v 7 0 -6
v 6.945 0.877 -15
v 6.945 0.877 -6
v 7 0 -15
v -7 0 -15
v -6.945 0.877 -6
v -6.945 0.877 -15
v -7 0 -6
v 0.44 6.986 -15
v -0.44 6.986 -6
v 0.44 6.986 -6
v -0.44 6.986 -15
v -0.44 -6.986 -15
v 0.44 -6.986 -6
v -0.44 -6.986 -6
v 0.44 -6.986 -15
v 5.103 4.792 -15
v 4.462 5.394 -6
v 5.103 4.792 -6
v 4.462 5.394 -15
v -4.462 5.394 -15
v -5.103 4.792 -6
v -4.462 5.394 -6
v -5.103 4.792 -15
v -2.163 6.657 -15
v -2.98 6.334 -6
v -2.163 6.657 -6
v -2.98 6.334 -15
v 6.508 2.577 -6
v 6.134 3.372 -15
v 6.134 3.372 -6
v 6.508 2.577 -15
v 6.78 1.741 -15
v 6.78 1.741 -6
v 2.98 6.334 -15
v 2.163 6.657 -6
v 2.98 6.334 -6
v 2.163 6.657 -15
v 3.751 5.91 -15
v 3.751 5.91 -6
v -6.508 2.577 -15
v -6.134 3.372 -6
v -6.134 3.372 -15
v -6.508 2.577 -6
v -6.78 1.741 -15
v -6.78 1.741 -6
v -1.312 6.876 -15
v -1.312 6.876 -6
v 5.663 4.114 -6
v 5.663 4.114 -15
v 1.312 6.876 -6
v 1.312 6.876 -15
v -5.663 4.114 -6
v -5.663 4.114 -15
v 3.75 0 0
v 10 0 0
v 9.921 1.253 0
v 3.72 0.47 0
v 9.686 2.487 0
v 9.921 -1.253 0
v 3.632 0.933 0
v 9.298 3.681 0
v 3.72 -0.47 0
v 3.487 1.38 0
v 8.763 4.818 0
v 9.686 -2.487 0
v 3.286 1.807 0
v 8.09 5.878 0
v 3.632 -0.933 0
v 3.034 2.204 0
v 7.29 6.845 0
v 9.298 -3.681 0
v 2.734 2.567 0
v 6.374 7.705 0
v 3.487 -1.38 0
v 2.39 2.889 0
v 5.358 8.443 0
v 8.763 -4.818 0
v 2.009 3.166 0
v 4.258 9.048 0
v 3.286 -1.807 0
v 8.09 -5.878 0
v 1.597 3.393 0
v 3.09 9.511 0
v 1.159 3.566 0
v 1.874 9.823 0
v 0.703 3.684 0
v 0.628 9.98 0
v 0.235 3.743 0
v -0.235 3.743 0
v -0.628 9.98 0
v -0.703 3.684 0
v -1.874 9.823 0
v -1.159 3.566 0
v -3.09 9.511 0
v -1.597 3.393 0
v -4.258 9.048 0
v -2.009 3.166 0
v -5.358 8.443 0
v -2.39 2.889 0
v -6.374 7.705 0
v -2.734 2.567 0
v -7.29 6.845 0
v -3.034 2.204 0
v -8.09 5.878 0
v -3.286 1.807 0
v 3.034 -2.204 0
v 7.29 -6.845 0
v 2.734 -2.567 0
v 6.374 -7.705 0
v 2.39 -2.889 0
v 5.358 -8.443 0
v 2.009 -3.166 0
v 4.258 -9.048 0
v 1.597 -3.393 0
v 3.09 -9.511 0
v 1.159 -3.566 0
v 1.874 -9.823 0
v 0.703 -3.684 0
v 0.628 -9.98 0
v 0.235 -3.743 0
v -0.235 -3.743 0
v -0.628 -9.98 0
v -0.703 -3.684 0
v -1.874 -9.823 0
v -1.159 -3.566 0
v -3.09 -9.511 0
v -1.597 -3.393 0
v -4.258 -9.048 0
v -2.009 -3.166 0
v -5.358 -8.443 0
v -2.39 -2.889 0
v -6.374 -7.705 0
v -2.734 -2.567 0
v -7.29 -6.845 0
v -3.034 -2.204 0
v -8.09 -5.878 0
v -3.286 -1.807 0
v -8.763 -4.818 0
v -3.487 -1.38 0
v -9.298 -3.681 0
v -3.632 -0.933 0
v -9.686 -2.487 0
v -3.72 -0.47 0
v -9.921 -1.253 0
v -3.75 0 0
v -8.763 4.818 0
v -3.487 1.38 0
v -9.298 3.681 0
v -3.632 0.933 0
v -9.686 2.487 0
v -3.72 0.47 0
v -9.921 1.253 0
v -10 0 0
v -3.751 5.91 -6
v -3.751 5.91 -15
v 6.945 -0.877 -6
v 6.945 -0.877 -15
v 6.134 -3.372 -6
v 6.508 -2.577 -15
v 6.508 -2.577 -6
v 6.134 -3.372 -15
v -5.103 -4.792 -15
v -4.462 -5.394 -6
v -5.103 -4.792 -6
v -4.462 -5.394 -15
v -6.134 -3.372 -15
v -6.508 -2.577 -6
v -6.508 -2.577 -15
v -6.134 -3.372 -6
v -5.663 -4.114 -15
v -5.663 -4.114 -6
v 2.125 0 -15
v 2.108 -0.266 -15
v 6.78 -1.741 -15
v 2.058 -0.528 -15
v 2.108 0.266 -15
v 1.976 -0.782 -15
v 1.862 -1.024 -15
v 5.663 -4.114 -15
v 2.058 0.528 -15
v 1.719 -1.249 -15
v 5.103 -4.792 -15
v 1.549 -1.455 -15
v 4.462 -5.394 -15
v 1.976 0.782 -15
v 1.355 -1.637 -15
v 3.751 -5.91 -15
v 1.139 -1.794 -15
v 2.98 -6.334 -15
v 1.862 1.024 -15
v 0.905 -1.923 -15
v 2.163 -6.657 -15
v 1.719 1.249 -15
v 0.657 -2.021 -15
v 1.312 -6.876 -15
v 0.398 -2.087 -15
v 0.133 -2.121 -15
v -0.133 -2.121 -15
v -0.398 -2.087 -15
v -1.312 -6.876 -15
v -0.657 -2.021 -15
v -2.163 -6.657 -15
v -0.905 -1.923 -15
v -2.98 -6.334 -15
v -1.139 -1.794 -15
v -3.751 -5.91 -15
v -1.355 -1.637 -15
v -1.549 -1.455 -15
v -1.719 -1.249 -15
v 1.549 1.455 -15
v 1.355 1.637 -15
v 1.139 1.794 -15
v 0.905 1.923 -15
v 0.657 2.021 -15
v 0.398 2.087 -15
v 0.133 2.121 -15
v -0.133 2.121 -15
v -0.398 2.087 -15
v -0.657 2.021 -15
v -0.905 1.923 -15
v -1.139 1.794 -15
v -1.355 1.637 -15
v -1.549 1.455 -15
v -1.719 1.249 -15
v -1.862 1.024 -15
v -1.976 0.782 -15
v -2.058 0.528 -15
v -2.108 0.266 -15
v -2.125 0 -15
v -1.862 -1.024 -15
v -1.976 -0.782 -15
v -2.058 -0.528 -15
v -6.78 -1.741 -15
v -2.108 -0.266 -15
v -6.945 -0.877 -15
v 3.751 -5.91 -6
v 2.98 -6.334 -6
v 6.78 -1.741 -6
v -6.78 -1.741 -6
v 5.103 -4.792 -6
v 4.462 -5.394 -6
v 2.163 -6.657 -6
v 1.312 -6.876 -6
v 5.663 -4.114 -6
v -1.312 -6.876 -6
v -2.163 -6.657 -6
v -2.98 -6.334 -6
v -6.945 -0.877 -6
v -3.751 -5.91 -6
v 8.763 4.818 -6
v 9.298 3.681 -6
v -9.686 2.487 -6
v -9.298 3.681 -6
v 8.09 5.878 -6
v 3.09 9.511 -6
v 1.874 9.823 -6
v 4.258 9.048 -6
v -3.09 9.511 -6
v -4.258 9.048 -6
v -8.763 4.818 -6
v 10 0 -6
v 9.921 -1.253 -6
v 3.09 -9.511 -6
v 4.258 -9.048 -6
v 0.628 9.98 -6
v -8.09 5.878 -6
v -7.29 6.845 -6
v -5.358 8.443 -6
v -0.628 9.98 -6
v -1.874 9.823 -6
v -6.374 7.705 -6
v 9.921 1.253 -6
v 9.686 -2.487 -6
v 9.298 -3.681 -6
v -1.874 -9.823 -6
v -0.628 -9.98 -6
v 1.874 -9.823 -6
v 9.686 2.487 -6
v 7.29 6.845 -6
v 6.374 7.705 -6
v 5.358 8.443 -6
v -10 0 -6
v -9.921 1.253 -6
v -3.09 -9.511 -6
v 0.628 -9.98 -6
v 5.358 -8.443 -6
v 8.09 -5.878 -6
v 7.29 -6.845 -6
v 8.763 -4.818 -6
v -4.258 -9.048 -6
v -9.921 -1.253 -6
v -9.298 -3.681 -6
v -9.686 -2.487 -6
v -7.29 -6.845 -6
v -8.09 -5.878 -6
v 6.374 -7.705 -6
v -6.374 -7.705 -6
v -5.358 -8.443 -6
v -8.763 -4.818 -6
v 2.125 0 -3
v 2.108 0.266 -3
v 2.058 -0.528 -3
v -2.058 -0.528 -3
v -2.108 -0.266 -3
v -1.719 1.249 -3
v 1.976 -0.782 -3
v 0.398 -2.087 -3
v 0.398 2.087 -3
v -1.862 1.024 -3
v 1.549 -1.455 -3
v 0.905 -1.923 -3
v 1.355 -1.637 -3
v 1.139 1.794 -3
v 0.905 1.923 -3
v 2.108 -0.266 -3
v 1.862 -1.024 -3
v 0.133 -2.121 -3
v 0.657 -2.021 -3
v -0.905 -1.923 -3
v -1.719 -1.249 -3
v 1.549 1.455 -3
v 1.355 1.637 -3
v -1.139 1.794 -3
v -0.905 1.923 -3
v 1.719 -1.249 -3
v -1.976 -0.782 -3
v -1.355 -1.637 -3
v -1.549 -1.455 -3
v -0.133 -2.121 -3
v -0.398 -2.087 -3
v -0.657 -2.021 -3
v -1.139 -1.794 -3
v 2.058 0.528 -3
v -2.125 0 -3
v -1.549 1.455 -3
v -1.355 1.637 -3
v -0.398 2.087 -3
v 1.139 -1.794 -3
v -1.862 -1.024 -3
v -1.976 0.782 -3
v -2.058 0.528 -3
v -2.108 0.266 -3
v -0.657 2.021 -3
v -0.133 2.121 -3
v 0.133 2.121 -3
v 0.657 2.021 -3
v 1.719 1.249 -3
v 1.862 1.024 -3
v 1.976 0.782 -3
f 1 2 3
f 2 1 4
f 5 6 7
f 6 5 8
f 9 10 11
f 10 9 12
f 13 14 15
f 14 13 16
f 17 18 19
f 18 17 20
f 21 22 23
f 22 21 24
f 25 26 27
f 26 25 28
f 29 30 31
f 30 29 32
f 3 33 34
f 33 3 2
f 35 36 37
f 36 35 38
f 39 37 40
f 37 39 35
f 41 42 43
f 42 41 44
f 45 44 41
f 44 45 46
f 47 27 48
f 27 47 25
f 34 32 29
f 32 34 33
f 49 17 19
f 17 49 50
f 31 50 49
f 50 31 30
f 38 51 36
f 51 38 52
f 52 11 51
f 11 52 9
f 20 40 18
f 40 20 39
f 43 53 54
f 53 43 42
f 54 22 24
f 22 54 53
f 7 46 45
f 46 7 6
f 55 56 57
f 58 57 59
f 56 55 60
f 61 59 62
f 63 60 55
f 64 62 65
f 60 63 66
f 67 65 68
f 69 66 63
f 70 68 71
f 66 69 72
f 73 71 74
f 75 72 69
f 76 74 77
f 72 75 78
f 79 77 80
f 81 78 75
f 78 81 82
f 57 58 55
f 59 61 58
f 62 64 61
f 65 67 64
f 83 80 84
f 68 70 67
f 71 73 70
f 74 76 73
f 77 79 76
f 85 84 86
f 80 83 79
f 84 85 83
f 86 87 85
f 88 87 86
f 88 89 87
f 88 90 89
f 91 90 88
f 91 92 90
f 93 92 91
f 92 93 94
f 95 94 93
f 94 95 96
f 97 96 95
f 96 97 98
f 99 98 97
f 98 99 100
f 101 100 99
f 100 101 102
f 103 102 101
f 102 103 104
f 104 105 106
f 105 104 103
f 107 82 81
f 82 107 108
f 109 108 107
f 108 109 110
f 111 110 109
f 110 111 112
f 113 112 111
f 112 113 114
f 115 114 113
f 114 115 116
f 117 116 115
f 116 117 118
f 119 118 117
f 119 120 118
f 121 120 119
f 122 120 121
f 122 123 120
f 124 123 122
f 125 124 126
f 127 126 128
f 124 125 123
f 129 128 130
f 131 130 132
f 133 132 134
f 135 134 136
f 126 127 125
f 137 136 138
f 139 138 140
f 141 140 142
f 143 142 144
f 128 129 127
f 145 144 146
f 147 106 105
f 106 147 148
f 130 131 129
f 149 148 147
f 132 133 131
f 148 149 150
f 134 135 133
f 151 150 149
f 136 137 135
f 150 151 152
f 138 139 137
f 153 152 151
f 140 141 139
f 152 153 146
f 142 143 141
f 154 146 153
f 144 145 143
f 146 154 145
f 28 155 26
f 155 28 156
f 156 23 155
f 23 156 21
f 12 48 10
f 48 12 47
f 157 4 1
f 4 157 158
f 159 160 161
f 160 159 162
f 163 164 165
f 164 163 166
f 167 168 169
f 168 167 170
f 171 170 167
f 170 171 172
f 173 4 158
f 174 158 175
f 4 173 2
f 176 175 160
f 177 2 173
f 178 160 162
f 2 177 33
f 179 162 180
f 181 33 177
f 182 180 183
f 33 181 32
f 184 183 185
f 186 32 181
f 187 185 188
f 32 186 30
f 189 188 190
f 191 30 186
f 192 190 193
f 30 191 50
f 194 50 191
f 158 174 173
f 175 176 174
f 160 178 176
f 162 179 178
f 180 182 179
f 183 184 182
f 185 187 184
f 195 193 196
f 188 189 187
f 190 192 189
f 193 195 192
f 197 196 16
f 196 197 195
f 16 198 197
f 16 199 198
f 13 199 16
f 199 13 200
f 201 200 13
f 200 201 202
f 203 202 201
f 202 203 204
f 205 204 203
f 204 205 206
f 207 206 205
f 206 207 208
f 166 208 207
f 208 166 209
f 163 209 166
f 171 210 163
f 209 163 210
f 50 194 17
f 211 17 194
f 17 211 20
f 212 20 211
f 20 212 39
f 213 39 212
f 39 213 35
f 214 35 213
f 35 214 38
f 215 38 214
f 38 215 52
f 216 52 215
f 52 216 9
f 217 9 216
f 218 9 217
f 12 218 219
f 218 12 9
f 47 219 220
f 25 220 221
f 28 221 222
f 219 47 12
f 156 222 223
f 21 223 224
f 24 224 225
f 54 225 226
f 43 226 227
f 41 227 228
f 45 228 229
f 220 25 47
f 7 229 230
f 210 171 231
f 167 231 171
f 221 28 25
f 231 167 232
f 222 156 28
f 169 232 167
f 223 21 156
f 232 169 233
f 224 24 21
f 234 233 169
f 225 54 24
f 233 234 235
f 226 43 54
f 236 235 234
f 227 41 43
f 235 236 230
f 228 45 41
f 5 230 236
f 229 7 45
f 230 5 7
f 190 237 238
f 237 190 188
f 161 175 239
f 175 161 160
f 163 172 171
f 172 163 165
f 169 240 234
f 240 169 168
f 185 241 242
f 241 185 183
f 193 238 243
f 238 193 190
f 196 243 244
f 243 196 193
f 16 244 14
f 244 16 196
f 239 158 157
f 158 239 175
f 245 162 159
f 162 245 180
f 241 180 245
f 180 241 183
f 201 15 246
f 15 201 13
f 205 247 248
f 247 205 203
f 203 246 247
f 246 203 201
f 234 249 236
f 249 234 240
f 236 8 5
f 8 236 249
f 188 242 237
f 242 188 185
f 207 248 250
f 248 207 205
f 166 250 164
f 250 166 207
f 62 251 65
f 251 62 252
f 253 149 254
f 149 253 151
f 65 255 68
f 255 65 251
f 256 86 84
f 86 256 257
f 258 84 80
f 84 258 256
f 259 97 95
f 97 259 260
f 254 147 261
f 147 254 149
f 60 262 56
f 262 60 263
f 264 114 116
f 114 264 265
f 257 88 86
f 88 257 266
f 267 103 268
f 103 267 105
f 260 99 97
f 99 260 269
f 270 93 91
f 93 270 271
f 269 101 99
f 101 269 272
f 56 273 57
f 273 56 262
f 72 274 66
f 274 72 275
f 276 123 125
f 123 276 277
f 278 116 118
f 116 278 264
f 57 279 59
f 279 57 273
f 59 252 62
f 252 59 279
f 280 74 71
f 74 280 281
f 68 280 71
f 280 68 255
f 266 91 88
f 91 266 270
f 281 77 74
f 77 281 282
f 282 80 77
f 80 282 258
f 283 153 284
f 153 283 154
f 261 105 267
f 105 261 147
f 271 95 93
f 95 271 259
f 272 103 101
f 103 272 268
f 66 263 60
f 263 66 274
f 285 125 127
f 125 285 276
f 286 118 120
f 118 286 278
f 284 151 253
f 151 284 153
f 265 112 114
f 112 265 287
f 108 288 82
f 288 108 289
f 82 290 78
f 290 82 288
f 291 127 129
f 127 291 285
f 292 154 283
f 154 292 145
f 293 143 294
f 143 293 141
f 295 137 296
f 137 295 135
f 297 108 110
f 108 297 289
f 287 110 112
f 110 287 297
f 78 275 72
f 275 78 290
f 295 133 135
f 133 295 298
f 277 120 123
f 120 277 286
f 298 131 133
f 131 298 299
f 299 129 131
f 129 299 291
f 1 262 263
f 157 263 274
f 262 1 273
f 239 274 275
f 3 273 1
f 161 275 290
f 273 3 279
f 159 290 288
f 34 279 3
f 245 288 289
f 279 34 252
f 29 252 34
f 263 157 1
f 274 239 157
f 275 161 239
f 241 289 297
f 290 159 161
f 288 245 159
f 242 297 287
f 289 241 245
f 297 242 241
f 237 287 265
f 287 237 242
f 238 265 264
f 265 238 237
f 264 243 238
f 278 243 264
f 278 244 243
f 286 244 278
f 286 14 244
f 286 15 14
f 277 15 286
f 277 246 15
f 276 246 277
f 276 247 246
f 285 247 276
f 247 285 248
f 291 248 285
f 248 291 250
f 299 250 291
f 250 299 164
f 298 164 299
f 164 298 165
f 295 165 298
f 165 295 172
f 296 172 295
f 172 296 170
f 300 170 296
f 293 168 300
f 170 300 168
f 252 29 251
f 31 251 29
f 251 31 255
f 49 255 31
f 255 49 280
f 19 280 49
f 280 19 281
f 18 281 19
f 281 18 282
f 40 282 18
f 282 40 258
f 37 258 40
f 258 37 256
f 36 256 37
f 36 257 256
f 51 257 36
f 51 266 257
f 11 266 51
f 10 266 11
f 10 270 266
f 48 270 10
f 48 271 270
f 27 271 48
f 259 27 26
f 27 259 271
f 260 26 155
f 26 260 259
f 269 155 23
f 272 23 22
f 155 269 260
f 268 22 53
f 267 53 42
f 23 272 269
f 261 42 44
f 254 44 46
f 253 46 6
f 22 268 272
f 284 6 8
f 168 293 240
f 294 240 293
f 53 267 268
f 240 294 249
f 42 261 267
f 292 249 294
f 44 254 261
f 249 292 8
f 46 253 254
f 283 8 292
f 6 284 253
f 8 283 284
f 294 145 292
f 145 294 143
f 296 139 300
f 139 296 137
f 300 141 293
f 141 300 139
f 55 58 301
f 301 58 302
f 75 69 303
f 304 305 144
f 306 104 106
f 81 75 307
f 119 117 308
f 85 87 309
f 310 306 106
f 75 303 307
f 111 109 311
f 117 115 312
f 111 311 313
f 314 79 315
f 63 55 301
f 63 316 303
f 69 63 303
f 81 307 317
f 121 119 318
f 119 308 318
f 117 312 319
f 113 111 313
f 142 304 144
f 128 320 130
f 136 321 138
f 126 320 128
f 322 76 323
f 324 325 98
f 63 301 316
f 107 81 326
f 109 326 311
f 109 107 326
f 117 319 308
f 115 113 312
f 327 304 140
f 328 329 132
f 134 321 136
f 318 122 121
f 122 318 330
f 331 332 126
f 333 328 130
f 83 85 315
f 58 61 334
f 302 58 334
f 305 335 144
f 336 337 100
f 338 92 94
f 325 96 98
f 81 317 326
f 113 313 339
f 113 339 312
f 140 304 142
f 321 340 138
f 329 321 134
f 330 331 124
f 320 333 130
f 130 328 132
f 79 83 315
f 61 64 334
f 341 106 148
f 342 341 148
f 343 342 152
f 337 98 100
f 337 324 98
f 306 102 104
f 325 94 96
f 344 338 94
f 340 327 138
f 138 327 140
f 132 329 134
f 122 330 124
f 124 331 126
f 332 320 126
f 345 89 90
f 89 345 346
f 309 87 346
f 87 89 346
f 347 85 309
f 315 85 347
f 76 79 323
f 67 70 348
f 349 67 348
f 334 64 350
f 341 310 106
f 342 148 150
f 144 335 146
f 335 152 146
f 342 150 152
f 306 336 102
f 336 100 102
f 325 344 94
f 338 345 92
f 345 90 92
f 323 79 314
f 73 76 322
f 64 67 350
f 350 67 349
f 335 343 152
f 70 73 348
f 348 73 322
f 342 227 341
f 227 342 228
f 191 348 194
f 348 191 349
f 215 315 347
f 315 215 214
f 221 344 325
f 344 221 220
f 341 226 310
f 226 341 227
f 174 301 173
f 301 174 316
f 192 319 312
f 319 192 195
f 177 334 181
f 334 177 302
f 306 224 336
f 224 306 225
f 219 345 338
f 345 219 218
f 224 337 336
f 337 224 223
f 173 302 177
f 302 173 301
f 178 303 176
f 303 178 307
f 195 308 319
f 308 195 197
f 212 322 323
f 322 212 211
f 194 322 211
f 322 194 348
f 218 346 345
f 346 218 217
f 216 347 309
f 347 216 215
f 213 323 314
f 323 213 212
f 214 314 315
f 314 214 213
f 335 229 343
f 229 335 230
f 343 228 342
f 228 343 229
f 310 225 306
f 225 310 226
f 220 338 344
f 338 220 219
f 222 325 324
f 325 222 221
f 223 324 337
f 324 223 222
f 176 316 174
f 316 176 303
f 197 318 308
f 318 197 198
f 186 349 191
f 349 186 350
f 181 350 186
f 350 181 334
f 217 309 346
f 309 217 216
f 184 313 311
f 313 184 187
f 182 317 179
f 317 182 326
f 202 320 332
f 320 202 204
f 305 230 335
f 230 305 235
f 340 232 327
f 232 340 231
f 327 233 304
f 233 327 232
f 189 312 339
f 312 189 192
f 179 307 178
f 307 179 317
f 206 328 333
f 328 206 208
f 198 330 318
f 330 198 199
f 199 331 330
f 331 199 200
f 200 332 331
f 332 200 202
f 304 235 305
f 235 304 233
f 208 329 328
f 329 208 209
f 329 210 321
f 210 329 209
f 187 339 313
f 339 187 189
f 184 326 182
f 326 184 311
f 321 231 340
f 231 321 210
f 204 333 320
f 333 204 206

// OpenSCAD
$fn = 50;


difference() {
	union() {
		translate(v = [0, 0, -15.0000000000]) {
			cylinder(h = 15, r = 7.0000000000);
		}
		translate(v = [0, 0, -6.0000000000]) {
			cylinder(h = 6, r = 10.0000000000);
		}
	}
	union() {
		translate(v = [0, 0, 0]) {
			rotate(a = [0, 0, 0]) {
				difference() {
					union() {
						#translate(v = [0, 0, -15.0000000000]) {
							cylinder(h = 15, r = 2.0000000000);
						}
						#translate(v = [0, 0, -3]) {
							cylinder(h = 3, r1 = 2.1250000000, r2 = 3.7500000000);
						}
						#translate(v = [0, 0, -15.0000000000]) {
							cylinder(h = 15, r = 2.1250000000);
						}
						#translate(v = [0, 0, -15.0000000000]) {
							cylinder(h = 15, r = 2.0000000000);
						}
					}
					union();
				}
			}
		}
	}
}
